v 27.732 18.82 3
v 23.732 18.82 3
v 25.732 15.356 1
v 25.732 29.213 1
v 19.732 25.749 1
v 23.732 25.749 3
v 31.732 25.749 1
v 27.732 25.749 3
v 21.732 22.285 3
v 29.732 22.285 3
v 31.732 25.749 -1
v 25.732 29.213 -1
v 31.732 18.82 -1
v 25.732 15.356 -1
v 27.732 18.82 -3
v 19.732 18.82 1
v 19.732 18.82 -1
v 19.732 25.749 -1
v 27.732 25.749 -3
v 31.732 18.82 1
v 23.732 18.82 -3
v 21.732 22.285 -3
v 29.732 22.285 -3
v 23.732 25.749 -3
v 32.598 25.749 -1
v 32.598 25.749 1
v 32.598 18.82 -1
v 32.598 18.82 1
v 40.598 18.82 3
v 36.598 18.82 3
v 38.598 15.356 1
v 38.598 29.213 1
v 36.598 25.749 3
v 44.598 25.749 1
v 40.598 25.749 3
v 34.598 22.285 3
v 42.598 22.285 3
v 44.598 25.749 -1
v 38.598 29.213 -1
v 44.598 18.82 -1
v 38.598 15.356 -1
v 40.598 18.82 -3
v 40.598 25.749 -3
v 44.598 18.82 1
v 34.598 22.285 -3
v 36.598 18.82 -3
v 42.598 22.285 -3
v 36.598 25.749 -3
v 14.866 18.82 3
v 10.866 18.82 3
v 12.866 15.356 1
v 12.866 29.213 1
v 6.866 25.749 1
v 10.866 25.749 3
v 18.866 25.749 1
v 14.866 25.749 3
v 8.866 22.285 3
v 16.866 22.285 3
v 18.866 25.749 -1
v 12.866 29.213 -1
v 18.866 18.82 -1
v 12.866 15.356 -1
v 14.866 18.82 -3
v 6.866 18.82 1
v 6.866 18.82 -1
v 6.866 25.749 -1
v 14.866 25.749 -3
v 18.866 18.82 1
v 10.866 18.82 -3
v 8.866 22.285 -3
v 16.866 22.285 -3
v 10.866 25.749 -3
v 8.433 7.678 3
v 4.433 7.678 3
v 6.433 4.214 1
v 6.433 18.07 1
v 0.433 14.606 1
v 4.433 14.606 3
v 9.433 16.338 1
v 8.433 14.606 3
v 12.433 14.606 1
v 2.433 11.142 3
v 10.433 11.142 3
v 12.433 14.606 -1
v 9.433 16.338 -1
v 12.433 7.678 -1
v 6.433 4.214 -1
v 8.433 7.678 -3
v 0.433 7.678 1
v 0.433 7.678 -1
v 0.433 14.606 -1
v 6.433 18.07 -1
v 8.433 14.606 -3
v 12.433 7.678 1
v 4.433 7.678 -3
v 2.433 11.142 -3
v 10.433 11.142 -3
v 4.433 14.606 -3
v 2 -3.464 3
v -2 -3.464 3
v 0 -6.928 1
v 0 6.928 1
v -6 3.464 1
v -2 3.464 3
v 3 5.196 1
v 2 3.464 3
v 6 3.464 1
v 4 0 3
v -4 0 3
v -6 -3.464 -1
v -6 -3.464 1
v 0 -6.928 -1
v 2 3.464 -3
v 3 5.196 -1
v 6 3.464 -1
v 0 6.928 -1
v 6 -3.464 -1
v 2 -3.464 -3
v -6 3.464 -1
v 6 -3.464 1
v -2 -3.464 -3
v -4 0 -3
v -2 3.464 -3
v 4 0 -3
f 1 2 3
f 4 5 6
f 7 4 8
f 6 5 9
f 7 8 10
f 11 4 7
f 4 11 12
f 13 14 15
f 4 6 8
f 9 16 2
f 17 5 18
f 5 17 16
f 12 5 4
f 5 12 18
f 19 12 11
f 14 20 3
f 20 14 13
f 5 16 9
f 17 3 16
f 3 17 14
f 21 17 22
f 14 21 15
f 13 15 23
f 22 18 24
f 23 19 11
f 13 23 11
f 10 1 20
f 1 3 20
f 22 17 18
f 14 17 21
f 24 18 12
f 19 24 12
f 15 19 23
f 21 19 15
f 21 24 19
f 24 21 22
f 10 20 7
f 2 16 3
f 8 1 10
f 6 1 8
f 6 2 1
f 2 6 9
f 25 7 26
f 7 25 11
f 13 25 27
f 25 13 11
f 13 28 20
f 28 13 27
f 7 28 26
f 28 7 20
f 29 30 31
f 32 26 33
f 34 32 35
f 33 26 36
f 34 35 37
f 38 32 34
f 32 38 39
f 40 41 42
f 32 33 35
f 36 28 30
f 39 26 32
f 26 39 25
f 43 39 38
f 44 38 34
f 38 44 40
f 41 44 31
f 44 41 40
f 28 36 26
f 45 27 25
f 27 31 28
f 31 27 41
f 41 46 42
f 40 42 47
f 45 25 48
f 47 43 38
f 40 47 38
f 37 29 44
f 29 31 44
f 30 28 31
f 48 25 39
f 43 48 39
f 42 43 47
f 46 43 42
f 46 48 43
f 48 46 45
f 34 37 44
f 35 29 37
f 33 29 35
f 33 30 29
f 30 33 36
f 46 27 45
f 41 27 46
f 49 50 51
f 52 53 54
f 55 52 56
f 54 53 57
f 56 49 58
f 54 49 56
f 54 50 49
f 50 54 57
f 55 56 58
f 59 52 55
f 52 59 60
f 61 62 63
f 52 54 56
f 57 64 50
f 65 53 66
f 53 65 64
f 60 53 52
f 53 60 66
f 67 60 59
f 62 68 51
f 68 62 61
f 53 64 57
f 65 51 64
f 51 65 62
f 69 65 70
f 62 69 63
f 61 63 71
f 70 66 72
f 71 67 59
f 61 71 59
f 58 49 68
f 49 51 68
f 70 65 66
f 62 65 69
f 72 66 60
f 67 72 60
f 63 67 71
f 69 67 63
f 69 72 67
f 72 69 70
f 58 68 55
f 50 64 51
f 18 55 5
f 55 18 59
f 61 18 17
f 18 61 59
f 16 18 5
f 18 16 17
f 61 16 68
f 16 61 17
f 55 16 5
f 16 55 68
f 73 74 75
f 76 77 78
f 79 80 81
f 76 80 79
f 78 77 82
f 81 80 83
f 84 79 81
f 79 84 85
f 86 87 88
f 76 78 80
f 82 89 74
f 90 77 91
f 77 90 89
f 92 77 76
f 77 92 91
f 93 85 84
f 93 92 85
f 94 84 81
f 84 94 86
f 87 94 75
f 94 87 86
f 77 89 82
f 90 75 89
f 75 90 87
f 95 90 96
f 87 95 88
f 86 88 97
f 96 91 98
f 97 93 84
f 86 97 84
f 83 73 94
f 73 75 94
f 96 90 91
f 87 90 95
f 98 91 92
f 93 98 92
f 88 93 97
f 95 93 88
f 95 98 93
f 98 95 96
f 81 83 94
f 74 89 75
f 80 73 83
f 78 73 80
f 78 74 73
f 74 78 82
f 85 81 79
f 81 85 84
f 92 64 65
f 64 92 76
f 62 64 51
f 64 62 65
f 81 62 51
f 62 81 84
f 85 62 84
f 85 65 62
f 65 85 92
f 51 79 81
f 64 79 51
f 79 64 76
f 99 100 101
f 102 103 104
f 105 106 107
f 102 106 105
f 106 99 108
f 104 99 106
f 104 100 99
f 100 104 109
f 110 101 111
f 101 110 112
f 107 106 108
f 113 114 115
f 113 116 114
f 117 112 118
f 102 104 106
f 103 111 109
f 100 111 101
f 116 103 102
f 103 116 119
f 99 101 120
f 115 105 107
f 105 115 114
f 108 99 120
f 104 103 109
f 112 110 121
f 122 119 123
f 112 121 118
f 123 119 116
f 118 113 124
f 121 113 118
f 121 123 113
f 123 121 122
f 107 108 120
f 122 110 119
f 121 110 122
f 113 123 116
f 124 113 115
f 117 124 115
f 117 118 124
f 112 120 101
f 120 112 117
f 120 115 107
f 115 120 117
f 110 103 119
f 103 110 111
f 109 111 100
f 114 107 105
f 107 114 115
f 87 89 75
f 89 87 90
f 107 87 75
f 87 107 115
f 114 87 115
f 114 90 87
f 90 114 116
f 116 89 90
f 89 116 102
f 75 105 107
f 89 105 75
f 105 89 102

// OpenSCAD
// file: gem-common.scad
angles = [for(i = [0:5]) i * (360 / 6)];

inner_poly_radius=8 * cos(60);
outer_poly_radius=8 * cos(30);
outer_poly_z=1;
inner_poly_z=3;


gap_between_gems = cos(30);
distance_to_corner = cos(30) * outer_poly_radius * 2 + gap_between_gems;


module edge_connector(angle = 0) {
    function make_point_2d(r, angle, height) = [r * sin(angle), height];
    
    points = [
        make_point_2d(outer_poly_radius, 30, outer_poly_z),
        make_point_2d(outer_poly_radius, -30, outer_poly_z),
        make_point_2d(outer_poly_radius, -30, -outer_poly_z),
        make_point_2d(outer_poly_radius, 30, -outer_poly_z),
    ];
    
    rotate([0,0,angle]) {
        translate([(distance_to_corner - gap_between_gems) / 2,0,0]){
            rotate([90, 0, 90]) {
                linear_extrude(gap_between_gems) {
                    polygon(points);
                }
            }
        }
    }
}

module move(distance, angle) {
    translate([distance * cos(angle), distance * sin(angle), 0]) {
        children();
    }
}


module corner_connector(angle=0) {
    r = 0.5;
    rotate_angle = angle + 30;
    move(outer_poly_radius + r, rotate_angle) {
        translate([0,0, -outer_poly_z]) {
            rotate([0,0,-rotate_angle]) {
                cylinder($fn=3, r=r, h=outer_poly_z * 2);
            }
        }
    }
}

module gem() {
    function make_point(r, angle, height) = [r * cos(angle), r * sin(angle), height];
    
    top_poly = [for(th = angles) make_point(inner_poly_radius, th, inner_poly_z)];
    top_outer_poly = [for(th = angles) make_point(outer_poly_radius, th + 30, outer_poly_z)];
    bottom_outer_poly = [for(th = angles) make_point(outer_poly_radius, th + 30, -outer_poly_z)];
    bottom_poly = [for(th = angles) make_point(inner_poly_radius, th, -inner_poly_z)];
 
    function rot(n, base) = (n + 1 - base) % 6 + base;
    
    faces = [
        [5, 4, 3, 2, 1, 0],
        for(i = [0:5]) [i, (i + 1) % 6, i + 6],
        for(i = [6:11]) [i, (i - 5) % 6, rot(i, 6)],
        for(i = [6:11]) [i, rot(i, 6), rot(i, 6) + 6, i + 6],
        for(i = [12:17]) [i, rot(i, 12), rot(i, 12) + 6],
        for(i = [18:23]) [i, i-6, rot(i, 18)],
        [18, 19, 20, 21, 22, 23],
    ];
    
    polyhedron(
        concat(
            top_poly,
            top_outer_poly,
            bottom_outer_poly,
            bottom_poly
        ),
        faces
    );
}
// main file
include <./gem-common.scad>

gem();
edge_connector(60);
move(distance_to_corner, 60) {
    gem();
    edge_connector(60);
    move(distance_to_corner, 60) {
        gem();
        edge_connector();
        move(distance_to_corner, 0) {
            gem();   
            edge_connector();
            move(distance_to_corner, 0) {
                gem();   
            }
        }
    }
}
